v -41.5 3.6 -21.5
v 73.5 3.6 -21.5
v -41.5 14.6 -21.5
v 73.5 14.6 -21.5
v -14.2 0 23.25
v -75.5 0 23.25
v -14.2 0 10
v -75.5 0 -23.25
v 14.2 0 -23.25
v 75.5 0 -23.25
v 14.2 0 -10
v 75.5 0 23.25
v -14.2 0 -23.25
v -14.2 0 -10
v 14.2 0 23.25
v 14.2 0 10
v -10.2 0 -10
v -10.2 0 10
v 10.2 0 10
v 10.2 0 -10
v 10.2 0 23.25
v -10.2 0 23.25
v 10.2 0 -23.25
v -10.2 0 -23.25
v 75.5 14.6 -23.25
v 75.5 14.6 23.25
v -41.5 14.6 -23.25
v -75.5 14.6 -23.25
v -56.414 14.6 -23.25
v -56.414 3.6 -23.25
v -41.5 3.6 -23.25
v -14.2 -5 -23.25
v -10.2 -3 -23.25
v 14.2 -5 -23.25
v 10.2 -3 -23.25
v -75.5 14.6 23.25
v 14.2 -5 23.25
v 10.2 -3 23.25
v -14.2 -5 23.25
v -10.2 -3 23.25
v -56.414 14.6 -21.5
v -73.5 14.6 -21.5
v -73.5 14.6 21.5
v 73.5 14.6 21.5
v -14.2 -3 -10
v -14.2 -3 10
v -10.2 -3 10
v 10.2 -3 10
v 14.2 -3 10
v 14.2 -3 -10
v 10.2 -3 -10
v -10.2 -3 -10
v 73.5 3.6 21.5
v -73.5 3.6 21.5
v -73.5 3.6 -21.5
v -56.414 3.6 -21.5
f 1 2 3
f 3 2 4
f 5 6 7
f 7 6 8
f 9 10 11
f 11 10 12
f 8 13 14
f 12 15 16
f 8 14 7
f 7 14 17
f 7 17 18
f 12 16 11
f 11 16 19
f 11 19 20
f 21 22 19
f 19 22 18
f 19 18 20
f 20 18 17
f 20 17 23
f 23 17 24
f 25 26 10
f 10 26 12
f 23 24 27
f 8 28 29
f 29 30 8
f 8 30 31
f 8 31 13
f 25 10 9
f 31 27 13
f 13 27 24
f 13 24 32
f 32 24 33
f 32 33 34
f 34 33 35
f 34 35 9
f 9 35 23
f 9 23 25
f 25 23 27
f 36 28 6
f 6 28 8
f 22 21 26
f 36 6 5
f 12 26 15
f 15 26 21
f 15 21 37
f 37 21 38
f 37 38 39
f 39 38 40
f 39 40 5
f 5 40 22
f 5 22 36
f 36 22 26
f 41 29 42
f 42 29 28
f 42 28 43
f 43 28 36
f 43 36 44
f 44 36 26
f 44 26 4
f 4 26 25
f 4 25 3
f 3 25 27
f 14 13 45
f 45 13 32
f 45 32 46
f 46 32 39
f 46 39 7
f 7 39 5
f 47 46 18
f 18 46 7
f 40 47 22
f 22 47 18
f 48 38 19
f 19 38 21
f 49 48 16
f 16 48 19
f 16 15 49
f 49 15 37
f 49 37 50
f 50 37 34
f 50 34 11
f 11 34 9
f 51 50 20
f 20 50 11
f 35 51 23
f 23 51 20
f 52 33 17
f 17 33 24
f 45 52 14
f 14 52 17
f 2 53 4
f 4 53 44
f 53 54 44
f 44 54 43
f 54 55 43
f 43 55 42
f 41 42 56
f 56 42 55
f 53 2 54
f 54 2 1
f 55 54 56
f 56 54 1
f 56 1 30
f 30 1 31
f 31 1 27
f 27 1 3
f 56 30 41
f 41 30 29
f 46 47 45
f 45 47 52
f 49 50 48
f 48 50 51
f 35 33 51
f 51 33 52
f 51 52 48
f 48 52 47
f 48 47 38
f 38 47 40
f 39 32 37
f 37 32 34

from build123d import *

# Parameters (mm, degrees)
SKETCH_1_W          = 151
SKETCH_1_H          = 46.5
EXTRUDE_1_DEPTH     = 14.6
SKETCH_5_W          = 4
SKETCH_5_H          = 13.25
EXTRUDE_5_DEPTH     = 3
SKETCH1_W           = 147
SKETCH1_H           = 43
CUT_EXTRUDE1_DEPTH  = 11
SKETCH2_W           = 14.914313068
SKETCH2_H           = 1.75
CUT_EXTRUDE2_DEPTH  = 11
SKETCH_8_W          = 28.4
SKETCH_8_H          = 46.5
BOSS_EXTRUDE1_DEPTH = 2


with BuildPart() as part:
    # 草图1 → 凸台-拉伸1 (new body)
    with BuildSketch(Plane(origin=(0, 0, 0), x_dir=(1, 0, 0), z_dir=(0, 1, 0))):
        Rectangle(SKETCH_1_W, SKETCH_1_H)
    extrude(amount=EXTRUDE_1_DEPTH)

    # 草图5 → 凸台-拉伸5 (add)
    with BuildSketch(Plane(origin=(0, 0, 0), x_dir=(-1, 0, 0), z_dir=(0, -1, 0))):
        with Locations((-12.2, -16.625)):
            Rectangle(SKETCH_5_W, SKETCH_5_H)
        with Locations((12.2, -16.625)):
            Rectangle(SKETCH_5_W, SKETCH_5_H)
        with Locations((-12.2, 16.625)):
            Rectangle(SKETCH_5_W, SKETCH_5_H)
        with Locations((12.2, 16.625)):
            Rectangle(SKETCH_5_W, SKETCH_5_H)
    extrude(amount=EXTRUDE_5_DEPTH)

    # Sketch1 → Cut-Extrude1 (cut)
    with BuildSketch(Plane(origin=(0, 14.6, 0), x_dir=(1, 0, 0), z_dir=(0, 1, 0))):
        Rectangle(SKETCH1_W, SKETCH1_H)
    extrude(amount=-CUT_EXTRUDE1_DEPTH, mode=Mode.SUBTRACT)

    # Sketch2 → Cut-Extrude2 (cut)
    with BuildSketch(Plane(origin=(0, 14.6, 0), x_dir=(1, 0, 0), z_dir=(0, 1, 0))):
        with Locations((-48.957156534, 22.375)):
            Rectangle(SKETCH2_W, SKETCH2_H)
    extrude(amount=-CUT_EXTRUDE2_DEPTH, mode=Mode.SUBTRACT)

    # 草图8 → Boss-Extrude1 (add)
    with BuildSketch(Plane(origin=(0, -3, 0), x_dir=(-1, 0, 0), z_dir=(0, -1, 0))):
        Rectangle(SKETCH_8_W, SKETCH_8_H)
    extrude(amount=BOSS_EXTRUDE1_DEPTH)


solid = part.part
